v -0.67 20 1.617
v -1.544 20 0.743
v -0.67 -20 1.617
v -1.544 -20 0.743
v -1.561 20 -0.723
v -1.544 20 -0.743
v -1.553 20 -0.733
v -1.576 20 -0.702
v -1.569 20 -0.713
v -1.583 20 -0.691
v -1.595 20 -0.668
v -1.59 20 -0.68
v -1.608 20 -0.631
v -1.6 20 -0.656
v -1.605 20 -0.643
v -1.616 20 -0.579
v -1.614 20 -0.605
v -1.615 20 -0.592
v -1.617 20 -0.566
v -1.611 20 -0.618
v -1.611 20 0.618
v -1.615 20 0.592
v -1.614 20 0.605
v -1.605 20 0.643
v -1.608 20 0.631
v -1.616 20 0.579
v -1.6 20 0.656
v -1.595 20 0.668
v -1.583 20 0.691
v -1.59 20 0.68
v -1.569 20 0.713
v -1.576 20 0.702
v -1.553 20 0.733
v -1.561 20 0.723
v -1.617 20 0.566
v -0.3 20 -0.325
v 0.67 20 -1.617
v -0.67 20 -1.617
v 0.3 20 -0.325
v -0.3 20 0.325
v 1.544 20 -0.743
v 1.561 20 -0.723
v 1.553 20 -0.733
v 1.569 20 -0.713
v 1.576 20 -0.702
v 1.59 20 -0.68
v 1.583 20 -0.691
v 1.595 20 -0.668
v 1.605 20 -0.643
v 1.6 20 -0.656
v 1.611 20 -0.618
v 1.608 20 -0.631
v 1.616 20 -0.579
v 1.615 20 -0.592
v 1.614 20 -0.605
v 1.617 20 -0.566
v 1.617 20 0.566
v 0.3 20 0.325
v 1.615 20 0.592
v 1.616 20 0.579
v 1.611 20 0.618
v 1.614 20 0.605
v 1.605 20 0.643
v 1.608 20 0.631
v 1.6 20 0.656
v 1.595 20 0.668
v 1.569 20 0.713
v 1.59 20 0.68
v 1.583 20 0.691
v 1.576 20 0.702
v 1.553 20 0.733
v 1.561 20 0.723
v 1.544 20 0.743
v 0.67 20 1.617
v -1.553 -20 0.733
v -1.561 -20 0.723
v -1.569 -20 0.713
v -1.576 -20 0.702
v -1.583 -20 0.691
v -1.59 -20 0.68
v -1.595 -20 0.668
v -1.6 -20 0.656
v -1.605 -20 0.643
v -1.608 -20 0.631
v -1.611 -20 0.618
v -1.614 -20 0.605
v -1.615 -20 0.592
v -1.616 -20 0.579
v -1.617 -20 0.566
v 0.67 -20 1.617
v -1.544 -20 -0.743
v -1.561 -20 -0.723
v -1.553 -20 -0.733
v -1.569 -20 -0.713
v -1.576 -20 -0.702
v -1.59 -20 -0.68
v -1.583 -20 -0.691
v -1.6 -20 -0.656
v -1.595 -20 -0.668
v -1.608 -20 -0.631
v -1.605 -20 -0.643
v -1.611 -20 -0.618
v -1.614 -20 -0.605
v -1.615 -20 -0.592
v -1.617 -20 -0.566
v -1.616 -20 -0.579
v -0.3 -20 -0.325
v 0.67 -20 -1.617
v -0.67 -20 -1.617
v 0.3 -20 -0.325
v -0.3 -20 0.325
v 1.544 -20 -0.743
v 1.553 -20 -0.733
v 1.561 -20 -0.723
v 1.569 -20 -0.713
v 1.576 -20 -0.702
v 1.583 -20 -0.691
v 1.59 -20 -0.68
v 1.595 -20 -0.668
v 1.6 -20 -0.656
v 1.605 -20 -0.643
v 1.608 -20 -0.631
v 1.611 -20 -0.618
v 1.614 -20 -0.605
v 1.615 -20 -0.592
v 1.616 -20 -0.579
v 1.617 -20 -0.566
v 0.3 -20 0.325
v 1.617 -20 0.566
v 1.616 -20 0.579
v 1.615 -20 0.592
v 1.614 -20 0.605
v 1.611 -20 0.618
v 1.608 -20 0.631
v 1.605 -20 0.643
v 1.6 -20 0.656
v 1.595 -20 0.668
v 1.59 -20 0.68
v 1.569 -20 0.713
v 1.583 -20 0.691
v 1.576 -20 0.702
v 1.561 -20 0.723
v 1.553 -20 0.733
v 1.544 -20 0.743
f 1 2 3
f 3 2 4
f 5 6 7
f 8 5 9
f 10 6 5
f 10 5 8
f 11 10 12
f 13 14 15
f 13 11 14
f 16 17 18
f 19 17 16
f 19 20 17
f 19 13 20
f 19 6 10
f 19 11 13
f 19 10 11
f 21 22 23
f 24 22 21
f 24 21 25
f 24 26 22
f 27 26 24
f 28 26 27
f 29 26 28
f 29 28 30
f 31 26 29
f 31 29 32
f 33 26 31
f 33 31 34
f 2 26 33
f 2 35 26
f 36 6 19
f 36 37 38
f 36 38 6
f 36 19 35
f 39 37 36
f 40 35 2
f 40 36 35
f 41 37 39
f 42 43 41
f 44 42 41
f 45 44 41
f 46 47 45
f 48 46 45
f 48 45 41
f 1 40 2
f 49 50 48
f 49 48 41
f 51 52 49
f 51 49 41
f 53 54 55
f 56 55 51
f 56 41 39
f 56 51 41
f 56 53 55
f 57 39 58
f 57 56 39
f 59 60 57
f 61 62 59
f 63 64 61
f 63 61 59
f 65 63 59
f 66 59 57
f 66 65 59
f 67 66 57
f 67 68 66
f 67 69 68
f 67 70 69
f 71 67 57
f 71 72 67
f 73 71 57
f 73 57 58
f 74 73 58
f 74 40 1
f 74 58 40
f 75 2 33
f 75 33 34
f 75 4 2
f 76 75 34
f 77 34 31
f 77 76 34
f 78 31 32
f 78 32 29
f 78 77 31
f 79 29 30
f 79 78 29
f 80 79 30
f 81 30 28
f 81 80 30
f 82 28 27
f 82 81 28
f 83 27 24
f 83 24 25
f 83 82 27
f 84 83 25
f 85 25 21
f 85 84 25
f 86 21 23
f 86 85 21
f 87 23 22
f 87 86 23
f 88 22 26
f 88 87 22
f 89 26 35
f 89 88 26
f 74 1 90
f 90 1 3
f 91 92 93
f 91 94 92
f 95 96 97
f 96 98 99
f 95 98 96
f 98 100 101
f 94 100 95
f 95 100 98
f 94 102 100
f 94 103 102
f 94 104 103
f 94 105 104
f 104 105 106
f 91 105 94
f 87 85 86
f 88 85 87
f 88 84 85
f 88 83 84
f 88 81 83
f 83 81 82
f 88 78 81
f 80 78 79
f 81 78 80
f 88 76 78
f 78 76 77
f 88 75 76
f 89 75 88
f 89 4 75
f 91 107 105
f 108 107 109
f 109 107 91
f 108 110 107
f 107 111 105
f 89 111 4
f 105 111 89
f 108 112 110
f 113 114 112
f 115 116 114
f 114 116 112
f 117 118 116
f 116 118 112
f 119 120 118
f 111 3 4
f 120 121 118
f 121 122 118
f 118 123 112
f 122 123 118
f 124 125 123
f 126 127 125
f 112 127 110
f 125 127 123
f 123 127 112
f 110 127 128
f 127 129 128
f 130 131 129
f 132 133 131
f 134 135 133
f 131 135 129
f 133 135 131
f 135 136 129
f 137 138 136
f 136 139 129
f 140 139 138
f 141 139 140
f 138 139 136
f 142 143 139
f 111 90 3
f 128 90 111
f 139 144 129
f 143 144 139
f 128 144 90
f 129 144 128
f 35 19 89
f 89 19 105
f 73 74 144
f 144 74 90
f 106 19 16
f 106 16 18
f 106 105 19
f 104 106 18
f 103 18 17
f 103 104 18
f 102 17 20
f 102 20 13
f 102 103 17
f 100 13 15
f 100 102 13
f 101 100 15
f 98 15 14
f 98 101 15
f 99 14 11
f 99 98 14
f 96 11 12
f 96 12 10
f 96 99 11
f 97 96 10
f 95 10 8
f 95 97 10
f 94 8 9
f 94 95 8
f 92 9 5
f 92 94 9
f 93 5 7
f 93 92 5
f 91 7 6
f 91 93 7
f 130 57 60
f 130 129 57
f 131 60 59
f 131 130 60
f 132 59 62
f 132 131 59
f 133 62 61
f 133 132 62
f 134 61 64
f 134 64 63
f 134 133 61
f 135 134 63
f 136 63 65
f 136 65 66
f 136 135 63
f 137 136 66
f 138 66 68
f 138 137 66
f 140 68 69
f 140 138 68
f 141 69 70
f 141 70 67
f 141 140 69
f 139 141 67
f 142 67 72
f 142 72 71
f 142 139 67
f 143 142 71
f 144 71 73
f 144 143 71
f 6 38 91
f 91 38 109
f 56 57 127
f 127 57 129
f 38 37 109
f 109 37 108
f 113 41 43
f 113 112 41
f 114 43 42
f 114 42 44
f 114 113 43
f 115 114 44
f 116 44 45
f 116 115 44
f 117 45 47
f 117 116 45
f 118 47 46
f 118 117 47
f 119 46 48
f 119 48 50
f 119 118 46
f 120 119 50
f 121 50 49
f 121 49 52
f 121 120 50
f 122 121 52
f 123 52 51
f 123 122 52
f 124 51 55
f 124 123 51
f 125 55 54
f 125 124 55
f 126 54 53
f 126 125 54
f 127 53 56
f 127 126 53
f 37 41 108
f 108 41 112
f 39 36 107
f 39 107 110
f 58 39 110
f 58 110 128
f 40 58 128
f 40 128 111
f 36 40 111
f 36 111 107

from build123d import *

# Parameters (mm, degrees)
SKETCH_W  = 0.6
SKETCH_H  = 0.65
PAD_DEPTH = 20
FILLET_R  = 0.25


with BuildPart() as part:
    # Sketch → Pad (new body, symmetric)
    with BuildSketch(Plane.XZ):
        Polygon((0.669696, 1.616789), (-0.669696, 1.616789), (-1.616789, 0.669696), (-1.616789, -0.669696), (-0.669696, -1.616789), (0.669696, -1.616789), (1.616789, -0.669696), (1.616789, 0.669696), align=None)
        Rectangle(SKETCH_W, SKETCH_H, mode=Mode.SUBTRACT)
    extrude(amount=PAD_DEPTH, both=True)

    # Fillet
    fillet_edges = [part.edges().sort_by_distance(p)[0] for p in [
        (-1.616789, 0, 0.669696),
        (-1.616789, 0, -0.669696),
        (1.616789, 0, 0.669696),
        (1.616789, 0, -0.669696),
    ]]
    fillet(fillet_edges, radius=FILLET_R)


solid = part.part
